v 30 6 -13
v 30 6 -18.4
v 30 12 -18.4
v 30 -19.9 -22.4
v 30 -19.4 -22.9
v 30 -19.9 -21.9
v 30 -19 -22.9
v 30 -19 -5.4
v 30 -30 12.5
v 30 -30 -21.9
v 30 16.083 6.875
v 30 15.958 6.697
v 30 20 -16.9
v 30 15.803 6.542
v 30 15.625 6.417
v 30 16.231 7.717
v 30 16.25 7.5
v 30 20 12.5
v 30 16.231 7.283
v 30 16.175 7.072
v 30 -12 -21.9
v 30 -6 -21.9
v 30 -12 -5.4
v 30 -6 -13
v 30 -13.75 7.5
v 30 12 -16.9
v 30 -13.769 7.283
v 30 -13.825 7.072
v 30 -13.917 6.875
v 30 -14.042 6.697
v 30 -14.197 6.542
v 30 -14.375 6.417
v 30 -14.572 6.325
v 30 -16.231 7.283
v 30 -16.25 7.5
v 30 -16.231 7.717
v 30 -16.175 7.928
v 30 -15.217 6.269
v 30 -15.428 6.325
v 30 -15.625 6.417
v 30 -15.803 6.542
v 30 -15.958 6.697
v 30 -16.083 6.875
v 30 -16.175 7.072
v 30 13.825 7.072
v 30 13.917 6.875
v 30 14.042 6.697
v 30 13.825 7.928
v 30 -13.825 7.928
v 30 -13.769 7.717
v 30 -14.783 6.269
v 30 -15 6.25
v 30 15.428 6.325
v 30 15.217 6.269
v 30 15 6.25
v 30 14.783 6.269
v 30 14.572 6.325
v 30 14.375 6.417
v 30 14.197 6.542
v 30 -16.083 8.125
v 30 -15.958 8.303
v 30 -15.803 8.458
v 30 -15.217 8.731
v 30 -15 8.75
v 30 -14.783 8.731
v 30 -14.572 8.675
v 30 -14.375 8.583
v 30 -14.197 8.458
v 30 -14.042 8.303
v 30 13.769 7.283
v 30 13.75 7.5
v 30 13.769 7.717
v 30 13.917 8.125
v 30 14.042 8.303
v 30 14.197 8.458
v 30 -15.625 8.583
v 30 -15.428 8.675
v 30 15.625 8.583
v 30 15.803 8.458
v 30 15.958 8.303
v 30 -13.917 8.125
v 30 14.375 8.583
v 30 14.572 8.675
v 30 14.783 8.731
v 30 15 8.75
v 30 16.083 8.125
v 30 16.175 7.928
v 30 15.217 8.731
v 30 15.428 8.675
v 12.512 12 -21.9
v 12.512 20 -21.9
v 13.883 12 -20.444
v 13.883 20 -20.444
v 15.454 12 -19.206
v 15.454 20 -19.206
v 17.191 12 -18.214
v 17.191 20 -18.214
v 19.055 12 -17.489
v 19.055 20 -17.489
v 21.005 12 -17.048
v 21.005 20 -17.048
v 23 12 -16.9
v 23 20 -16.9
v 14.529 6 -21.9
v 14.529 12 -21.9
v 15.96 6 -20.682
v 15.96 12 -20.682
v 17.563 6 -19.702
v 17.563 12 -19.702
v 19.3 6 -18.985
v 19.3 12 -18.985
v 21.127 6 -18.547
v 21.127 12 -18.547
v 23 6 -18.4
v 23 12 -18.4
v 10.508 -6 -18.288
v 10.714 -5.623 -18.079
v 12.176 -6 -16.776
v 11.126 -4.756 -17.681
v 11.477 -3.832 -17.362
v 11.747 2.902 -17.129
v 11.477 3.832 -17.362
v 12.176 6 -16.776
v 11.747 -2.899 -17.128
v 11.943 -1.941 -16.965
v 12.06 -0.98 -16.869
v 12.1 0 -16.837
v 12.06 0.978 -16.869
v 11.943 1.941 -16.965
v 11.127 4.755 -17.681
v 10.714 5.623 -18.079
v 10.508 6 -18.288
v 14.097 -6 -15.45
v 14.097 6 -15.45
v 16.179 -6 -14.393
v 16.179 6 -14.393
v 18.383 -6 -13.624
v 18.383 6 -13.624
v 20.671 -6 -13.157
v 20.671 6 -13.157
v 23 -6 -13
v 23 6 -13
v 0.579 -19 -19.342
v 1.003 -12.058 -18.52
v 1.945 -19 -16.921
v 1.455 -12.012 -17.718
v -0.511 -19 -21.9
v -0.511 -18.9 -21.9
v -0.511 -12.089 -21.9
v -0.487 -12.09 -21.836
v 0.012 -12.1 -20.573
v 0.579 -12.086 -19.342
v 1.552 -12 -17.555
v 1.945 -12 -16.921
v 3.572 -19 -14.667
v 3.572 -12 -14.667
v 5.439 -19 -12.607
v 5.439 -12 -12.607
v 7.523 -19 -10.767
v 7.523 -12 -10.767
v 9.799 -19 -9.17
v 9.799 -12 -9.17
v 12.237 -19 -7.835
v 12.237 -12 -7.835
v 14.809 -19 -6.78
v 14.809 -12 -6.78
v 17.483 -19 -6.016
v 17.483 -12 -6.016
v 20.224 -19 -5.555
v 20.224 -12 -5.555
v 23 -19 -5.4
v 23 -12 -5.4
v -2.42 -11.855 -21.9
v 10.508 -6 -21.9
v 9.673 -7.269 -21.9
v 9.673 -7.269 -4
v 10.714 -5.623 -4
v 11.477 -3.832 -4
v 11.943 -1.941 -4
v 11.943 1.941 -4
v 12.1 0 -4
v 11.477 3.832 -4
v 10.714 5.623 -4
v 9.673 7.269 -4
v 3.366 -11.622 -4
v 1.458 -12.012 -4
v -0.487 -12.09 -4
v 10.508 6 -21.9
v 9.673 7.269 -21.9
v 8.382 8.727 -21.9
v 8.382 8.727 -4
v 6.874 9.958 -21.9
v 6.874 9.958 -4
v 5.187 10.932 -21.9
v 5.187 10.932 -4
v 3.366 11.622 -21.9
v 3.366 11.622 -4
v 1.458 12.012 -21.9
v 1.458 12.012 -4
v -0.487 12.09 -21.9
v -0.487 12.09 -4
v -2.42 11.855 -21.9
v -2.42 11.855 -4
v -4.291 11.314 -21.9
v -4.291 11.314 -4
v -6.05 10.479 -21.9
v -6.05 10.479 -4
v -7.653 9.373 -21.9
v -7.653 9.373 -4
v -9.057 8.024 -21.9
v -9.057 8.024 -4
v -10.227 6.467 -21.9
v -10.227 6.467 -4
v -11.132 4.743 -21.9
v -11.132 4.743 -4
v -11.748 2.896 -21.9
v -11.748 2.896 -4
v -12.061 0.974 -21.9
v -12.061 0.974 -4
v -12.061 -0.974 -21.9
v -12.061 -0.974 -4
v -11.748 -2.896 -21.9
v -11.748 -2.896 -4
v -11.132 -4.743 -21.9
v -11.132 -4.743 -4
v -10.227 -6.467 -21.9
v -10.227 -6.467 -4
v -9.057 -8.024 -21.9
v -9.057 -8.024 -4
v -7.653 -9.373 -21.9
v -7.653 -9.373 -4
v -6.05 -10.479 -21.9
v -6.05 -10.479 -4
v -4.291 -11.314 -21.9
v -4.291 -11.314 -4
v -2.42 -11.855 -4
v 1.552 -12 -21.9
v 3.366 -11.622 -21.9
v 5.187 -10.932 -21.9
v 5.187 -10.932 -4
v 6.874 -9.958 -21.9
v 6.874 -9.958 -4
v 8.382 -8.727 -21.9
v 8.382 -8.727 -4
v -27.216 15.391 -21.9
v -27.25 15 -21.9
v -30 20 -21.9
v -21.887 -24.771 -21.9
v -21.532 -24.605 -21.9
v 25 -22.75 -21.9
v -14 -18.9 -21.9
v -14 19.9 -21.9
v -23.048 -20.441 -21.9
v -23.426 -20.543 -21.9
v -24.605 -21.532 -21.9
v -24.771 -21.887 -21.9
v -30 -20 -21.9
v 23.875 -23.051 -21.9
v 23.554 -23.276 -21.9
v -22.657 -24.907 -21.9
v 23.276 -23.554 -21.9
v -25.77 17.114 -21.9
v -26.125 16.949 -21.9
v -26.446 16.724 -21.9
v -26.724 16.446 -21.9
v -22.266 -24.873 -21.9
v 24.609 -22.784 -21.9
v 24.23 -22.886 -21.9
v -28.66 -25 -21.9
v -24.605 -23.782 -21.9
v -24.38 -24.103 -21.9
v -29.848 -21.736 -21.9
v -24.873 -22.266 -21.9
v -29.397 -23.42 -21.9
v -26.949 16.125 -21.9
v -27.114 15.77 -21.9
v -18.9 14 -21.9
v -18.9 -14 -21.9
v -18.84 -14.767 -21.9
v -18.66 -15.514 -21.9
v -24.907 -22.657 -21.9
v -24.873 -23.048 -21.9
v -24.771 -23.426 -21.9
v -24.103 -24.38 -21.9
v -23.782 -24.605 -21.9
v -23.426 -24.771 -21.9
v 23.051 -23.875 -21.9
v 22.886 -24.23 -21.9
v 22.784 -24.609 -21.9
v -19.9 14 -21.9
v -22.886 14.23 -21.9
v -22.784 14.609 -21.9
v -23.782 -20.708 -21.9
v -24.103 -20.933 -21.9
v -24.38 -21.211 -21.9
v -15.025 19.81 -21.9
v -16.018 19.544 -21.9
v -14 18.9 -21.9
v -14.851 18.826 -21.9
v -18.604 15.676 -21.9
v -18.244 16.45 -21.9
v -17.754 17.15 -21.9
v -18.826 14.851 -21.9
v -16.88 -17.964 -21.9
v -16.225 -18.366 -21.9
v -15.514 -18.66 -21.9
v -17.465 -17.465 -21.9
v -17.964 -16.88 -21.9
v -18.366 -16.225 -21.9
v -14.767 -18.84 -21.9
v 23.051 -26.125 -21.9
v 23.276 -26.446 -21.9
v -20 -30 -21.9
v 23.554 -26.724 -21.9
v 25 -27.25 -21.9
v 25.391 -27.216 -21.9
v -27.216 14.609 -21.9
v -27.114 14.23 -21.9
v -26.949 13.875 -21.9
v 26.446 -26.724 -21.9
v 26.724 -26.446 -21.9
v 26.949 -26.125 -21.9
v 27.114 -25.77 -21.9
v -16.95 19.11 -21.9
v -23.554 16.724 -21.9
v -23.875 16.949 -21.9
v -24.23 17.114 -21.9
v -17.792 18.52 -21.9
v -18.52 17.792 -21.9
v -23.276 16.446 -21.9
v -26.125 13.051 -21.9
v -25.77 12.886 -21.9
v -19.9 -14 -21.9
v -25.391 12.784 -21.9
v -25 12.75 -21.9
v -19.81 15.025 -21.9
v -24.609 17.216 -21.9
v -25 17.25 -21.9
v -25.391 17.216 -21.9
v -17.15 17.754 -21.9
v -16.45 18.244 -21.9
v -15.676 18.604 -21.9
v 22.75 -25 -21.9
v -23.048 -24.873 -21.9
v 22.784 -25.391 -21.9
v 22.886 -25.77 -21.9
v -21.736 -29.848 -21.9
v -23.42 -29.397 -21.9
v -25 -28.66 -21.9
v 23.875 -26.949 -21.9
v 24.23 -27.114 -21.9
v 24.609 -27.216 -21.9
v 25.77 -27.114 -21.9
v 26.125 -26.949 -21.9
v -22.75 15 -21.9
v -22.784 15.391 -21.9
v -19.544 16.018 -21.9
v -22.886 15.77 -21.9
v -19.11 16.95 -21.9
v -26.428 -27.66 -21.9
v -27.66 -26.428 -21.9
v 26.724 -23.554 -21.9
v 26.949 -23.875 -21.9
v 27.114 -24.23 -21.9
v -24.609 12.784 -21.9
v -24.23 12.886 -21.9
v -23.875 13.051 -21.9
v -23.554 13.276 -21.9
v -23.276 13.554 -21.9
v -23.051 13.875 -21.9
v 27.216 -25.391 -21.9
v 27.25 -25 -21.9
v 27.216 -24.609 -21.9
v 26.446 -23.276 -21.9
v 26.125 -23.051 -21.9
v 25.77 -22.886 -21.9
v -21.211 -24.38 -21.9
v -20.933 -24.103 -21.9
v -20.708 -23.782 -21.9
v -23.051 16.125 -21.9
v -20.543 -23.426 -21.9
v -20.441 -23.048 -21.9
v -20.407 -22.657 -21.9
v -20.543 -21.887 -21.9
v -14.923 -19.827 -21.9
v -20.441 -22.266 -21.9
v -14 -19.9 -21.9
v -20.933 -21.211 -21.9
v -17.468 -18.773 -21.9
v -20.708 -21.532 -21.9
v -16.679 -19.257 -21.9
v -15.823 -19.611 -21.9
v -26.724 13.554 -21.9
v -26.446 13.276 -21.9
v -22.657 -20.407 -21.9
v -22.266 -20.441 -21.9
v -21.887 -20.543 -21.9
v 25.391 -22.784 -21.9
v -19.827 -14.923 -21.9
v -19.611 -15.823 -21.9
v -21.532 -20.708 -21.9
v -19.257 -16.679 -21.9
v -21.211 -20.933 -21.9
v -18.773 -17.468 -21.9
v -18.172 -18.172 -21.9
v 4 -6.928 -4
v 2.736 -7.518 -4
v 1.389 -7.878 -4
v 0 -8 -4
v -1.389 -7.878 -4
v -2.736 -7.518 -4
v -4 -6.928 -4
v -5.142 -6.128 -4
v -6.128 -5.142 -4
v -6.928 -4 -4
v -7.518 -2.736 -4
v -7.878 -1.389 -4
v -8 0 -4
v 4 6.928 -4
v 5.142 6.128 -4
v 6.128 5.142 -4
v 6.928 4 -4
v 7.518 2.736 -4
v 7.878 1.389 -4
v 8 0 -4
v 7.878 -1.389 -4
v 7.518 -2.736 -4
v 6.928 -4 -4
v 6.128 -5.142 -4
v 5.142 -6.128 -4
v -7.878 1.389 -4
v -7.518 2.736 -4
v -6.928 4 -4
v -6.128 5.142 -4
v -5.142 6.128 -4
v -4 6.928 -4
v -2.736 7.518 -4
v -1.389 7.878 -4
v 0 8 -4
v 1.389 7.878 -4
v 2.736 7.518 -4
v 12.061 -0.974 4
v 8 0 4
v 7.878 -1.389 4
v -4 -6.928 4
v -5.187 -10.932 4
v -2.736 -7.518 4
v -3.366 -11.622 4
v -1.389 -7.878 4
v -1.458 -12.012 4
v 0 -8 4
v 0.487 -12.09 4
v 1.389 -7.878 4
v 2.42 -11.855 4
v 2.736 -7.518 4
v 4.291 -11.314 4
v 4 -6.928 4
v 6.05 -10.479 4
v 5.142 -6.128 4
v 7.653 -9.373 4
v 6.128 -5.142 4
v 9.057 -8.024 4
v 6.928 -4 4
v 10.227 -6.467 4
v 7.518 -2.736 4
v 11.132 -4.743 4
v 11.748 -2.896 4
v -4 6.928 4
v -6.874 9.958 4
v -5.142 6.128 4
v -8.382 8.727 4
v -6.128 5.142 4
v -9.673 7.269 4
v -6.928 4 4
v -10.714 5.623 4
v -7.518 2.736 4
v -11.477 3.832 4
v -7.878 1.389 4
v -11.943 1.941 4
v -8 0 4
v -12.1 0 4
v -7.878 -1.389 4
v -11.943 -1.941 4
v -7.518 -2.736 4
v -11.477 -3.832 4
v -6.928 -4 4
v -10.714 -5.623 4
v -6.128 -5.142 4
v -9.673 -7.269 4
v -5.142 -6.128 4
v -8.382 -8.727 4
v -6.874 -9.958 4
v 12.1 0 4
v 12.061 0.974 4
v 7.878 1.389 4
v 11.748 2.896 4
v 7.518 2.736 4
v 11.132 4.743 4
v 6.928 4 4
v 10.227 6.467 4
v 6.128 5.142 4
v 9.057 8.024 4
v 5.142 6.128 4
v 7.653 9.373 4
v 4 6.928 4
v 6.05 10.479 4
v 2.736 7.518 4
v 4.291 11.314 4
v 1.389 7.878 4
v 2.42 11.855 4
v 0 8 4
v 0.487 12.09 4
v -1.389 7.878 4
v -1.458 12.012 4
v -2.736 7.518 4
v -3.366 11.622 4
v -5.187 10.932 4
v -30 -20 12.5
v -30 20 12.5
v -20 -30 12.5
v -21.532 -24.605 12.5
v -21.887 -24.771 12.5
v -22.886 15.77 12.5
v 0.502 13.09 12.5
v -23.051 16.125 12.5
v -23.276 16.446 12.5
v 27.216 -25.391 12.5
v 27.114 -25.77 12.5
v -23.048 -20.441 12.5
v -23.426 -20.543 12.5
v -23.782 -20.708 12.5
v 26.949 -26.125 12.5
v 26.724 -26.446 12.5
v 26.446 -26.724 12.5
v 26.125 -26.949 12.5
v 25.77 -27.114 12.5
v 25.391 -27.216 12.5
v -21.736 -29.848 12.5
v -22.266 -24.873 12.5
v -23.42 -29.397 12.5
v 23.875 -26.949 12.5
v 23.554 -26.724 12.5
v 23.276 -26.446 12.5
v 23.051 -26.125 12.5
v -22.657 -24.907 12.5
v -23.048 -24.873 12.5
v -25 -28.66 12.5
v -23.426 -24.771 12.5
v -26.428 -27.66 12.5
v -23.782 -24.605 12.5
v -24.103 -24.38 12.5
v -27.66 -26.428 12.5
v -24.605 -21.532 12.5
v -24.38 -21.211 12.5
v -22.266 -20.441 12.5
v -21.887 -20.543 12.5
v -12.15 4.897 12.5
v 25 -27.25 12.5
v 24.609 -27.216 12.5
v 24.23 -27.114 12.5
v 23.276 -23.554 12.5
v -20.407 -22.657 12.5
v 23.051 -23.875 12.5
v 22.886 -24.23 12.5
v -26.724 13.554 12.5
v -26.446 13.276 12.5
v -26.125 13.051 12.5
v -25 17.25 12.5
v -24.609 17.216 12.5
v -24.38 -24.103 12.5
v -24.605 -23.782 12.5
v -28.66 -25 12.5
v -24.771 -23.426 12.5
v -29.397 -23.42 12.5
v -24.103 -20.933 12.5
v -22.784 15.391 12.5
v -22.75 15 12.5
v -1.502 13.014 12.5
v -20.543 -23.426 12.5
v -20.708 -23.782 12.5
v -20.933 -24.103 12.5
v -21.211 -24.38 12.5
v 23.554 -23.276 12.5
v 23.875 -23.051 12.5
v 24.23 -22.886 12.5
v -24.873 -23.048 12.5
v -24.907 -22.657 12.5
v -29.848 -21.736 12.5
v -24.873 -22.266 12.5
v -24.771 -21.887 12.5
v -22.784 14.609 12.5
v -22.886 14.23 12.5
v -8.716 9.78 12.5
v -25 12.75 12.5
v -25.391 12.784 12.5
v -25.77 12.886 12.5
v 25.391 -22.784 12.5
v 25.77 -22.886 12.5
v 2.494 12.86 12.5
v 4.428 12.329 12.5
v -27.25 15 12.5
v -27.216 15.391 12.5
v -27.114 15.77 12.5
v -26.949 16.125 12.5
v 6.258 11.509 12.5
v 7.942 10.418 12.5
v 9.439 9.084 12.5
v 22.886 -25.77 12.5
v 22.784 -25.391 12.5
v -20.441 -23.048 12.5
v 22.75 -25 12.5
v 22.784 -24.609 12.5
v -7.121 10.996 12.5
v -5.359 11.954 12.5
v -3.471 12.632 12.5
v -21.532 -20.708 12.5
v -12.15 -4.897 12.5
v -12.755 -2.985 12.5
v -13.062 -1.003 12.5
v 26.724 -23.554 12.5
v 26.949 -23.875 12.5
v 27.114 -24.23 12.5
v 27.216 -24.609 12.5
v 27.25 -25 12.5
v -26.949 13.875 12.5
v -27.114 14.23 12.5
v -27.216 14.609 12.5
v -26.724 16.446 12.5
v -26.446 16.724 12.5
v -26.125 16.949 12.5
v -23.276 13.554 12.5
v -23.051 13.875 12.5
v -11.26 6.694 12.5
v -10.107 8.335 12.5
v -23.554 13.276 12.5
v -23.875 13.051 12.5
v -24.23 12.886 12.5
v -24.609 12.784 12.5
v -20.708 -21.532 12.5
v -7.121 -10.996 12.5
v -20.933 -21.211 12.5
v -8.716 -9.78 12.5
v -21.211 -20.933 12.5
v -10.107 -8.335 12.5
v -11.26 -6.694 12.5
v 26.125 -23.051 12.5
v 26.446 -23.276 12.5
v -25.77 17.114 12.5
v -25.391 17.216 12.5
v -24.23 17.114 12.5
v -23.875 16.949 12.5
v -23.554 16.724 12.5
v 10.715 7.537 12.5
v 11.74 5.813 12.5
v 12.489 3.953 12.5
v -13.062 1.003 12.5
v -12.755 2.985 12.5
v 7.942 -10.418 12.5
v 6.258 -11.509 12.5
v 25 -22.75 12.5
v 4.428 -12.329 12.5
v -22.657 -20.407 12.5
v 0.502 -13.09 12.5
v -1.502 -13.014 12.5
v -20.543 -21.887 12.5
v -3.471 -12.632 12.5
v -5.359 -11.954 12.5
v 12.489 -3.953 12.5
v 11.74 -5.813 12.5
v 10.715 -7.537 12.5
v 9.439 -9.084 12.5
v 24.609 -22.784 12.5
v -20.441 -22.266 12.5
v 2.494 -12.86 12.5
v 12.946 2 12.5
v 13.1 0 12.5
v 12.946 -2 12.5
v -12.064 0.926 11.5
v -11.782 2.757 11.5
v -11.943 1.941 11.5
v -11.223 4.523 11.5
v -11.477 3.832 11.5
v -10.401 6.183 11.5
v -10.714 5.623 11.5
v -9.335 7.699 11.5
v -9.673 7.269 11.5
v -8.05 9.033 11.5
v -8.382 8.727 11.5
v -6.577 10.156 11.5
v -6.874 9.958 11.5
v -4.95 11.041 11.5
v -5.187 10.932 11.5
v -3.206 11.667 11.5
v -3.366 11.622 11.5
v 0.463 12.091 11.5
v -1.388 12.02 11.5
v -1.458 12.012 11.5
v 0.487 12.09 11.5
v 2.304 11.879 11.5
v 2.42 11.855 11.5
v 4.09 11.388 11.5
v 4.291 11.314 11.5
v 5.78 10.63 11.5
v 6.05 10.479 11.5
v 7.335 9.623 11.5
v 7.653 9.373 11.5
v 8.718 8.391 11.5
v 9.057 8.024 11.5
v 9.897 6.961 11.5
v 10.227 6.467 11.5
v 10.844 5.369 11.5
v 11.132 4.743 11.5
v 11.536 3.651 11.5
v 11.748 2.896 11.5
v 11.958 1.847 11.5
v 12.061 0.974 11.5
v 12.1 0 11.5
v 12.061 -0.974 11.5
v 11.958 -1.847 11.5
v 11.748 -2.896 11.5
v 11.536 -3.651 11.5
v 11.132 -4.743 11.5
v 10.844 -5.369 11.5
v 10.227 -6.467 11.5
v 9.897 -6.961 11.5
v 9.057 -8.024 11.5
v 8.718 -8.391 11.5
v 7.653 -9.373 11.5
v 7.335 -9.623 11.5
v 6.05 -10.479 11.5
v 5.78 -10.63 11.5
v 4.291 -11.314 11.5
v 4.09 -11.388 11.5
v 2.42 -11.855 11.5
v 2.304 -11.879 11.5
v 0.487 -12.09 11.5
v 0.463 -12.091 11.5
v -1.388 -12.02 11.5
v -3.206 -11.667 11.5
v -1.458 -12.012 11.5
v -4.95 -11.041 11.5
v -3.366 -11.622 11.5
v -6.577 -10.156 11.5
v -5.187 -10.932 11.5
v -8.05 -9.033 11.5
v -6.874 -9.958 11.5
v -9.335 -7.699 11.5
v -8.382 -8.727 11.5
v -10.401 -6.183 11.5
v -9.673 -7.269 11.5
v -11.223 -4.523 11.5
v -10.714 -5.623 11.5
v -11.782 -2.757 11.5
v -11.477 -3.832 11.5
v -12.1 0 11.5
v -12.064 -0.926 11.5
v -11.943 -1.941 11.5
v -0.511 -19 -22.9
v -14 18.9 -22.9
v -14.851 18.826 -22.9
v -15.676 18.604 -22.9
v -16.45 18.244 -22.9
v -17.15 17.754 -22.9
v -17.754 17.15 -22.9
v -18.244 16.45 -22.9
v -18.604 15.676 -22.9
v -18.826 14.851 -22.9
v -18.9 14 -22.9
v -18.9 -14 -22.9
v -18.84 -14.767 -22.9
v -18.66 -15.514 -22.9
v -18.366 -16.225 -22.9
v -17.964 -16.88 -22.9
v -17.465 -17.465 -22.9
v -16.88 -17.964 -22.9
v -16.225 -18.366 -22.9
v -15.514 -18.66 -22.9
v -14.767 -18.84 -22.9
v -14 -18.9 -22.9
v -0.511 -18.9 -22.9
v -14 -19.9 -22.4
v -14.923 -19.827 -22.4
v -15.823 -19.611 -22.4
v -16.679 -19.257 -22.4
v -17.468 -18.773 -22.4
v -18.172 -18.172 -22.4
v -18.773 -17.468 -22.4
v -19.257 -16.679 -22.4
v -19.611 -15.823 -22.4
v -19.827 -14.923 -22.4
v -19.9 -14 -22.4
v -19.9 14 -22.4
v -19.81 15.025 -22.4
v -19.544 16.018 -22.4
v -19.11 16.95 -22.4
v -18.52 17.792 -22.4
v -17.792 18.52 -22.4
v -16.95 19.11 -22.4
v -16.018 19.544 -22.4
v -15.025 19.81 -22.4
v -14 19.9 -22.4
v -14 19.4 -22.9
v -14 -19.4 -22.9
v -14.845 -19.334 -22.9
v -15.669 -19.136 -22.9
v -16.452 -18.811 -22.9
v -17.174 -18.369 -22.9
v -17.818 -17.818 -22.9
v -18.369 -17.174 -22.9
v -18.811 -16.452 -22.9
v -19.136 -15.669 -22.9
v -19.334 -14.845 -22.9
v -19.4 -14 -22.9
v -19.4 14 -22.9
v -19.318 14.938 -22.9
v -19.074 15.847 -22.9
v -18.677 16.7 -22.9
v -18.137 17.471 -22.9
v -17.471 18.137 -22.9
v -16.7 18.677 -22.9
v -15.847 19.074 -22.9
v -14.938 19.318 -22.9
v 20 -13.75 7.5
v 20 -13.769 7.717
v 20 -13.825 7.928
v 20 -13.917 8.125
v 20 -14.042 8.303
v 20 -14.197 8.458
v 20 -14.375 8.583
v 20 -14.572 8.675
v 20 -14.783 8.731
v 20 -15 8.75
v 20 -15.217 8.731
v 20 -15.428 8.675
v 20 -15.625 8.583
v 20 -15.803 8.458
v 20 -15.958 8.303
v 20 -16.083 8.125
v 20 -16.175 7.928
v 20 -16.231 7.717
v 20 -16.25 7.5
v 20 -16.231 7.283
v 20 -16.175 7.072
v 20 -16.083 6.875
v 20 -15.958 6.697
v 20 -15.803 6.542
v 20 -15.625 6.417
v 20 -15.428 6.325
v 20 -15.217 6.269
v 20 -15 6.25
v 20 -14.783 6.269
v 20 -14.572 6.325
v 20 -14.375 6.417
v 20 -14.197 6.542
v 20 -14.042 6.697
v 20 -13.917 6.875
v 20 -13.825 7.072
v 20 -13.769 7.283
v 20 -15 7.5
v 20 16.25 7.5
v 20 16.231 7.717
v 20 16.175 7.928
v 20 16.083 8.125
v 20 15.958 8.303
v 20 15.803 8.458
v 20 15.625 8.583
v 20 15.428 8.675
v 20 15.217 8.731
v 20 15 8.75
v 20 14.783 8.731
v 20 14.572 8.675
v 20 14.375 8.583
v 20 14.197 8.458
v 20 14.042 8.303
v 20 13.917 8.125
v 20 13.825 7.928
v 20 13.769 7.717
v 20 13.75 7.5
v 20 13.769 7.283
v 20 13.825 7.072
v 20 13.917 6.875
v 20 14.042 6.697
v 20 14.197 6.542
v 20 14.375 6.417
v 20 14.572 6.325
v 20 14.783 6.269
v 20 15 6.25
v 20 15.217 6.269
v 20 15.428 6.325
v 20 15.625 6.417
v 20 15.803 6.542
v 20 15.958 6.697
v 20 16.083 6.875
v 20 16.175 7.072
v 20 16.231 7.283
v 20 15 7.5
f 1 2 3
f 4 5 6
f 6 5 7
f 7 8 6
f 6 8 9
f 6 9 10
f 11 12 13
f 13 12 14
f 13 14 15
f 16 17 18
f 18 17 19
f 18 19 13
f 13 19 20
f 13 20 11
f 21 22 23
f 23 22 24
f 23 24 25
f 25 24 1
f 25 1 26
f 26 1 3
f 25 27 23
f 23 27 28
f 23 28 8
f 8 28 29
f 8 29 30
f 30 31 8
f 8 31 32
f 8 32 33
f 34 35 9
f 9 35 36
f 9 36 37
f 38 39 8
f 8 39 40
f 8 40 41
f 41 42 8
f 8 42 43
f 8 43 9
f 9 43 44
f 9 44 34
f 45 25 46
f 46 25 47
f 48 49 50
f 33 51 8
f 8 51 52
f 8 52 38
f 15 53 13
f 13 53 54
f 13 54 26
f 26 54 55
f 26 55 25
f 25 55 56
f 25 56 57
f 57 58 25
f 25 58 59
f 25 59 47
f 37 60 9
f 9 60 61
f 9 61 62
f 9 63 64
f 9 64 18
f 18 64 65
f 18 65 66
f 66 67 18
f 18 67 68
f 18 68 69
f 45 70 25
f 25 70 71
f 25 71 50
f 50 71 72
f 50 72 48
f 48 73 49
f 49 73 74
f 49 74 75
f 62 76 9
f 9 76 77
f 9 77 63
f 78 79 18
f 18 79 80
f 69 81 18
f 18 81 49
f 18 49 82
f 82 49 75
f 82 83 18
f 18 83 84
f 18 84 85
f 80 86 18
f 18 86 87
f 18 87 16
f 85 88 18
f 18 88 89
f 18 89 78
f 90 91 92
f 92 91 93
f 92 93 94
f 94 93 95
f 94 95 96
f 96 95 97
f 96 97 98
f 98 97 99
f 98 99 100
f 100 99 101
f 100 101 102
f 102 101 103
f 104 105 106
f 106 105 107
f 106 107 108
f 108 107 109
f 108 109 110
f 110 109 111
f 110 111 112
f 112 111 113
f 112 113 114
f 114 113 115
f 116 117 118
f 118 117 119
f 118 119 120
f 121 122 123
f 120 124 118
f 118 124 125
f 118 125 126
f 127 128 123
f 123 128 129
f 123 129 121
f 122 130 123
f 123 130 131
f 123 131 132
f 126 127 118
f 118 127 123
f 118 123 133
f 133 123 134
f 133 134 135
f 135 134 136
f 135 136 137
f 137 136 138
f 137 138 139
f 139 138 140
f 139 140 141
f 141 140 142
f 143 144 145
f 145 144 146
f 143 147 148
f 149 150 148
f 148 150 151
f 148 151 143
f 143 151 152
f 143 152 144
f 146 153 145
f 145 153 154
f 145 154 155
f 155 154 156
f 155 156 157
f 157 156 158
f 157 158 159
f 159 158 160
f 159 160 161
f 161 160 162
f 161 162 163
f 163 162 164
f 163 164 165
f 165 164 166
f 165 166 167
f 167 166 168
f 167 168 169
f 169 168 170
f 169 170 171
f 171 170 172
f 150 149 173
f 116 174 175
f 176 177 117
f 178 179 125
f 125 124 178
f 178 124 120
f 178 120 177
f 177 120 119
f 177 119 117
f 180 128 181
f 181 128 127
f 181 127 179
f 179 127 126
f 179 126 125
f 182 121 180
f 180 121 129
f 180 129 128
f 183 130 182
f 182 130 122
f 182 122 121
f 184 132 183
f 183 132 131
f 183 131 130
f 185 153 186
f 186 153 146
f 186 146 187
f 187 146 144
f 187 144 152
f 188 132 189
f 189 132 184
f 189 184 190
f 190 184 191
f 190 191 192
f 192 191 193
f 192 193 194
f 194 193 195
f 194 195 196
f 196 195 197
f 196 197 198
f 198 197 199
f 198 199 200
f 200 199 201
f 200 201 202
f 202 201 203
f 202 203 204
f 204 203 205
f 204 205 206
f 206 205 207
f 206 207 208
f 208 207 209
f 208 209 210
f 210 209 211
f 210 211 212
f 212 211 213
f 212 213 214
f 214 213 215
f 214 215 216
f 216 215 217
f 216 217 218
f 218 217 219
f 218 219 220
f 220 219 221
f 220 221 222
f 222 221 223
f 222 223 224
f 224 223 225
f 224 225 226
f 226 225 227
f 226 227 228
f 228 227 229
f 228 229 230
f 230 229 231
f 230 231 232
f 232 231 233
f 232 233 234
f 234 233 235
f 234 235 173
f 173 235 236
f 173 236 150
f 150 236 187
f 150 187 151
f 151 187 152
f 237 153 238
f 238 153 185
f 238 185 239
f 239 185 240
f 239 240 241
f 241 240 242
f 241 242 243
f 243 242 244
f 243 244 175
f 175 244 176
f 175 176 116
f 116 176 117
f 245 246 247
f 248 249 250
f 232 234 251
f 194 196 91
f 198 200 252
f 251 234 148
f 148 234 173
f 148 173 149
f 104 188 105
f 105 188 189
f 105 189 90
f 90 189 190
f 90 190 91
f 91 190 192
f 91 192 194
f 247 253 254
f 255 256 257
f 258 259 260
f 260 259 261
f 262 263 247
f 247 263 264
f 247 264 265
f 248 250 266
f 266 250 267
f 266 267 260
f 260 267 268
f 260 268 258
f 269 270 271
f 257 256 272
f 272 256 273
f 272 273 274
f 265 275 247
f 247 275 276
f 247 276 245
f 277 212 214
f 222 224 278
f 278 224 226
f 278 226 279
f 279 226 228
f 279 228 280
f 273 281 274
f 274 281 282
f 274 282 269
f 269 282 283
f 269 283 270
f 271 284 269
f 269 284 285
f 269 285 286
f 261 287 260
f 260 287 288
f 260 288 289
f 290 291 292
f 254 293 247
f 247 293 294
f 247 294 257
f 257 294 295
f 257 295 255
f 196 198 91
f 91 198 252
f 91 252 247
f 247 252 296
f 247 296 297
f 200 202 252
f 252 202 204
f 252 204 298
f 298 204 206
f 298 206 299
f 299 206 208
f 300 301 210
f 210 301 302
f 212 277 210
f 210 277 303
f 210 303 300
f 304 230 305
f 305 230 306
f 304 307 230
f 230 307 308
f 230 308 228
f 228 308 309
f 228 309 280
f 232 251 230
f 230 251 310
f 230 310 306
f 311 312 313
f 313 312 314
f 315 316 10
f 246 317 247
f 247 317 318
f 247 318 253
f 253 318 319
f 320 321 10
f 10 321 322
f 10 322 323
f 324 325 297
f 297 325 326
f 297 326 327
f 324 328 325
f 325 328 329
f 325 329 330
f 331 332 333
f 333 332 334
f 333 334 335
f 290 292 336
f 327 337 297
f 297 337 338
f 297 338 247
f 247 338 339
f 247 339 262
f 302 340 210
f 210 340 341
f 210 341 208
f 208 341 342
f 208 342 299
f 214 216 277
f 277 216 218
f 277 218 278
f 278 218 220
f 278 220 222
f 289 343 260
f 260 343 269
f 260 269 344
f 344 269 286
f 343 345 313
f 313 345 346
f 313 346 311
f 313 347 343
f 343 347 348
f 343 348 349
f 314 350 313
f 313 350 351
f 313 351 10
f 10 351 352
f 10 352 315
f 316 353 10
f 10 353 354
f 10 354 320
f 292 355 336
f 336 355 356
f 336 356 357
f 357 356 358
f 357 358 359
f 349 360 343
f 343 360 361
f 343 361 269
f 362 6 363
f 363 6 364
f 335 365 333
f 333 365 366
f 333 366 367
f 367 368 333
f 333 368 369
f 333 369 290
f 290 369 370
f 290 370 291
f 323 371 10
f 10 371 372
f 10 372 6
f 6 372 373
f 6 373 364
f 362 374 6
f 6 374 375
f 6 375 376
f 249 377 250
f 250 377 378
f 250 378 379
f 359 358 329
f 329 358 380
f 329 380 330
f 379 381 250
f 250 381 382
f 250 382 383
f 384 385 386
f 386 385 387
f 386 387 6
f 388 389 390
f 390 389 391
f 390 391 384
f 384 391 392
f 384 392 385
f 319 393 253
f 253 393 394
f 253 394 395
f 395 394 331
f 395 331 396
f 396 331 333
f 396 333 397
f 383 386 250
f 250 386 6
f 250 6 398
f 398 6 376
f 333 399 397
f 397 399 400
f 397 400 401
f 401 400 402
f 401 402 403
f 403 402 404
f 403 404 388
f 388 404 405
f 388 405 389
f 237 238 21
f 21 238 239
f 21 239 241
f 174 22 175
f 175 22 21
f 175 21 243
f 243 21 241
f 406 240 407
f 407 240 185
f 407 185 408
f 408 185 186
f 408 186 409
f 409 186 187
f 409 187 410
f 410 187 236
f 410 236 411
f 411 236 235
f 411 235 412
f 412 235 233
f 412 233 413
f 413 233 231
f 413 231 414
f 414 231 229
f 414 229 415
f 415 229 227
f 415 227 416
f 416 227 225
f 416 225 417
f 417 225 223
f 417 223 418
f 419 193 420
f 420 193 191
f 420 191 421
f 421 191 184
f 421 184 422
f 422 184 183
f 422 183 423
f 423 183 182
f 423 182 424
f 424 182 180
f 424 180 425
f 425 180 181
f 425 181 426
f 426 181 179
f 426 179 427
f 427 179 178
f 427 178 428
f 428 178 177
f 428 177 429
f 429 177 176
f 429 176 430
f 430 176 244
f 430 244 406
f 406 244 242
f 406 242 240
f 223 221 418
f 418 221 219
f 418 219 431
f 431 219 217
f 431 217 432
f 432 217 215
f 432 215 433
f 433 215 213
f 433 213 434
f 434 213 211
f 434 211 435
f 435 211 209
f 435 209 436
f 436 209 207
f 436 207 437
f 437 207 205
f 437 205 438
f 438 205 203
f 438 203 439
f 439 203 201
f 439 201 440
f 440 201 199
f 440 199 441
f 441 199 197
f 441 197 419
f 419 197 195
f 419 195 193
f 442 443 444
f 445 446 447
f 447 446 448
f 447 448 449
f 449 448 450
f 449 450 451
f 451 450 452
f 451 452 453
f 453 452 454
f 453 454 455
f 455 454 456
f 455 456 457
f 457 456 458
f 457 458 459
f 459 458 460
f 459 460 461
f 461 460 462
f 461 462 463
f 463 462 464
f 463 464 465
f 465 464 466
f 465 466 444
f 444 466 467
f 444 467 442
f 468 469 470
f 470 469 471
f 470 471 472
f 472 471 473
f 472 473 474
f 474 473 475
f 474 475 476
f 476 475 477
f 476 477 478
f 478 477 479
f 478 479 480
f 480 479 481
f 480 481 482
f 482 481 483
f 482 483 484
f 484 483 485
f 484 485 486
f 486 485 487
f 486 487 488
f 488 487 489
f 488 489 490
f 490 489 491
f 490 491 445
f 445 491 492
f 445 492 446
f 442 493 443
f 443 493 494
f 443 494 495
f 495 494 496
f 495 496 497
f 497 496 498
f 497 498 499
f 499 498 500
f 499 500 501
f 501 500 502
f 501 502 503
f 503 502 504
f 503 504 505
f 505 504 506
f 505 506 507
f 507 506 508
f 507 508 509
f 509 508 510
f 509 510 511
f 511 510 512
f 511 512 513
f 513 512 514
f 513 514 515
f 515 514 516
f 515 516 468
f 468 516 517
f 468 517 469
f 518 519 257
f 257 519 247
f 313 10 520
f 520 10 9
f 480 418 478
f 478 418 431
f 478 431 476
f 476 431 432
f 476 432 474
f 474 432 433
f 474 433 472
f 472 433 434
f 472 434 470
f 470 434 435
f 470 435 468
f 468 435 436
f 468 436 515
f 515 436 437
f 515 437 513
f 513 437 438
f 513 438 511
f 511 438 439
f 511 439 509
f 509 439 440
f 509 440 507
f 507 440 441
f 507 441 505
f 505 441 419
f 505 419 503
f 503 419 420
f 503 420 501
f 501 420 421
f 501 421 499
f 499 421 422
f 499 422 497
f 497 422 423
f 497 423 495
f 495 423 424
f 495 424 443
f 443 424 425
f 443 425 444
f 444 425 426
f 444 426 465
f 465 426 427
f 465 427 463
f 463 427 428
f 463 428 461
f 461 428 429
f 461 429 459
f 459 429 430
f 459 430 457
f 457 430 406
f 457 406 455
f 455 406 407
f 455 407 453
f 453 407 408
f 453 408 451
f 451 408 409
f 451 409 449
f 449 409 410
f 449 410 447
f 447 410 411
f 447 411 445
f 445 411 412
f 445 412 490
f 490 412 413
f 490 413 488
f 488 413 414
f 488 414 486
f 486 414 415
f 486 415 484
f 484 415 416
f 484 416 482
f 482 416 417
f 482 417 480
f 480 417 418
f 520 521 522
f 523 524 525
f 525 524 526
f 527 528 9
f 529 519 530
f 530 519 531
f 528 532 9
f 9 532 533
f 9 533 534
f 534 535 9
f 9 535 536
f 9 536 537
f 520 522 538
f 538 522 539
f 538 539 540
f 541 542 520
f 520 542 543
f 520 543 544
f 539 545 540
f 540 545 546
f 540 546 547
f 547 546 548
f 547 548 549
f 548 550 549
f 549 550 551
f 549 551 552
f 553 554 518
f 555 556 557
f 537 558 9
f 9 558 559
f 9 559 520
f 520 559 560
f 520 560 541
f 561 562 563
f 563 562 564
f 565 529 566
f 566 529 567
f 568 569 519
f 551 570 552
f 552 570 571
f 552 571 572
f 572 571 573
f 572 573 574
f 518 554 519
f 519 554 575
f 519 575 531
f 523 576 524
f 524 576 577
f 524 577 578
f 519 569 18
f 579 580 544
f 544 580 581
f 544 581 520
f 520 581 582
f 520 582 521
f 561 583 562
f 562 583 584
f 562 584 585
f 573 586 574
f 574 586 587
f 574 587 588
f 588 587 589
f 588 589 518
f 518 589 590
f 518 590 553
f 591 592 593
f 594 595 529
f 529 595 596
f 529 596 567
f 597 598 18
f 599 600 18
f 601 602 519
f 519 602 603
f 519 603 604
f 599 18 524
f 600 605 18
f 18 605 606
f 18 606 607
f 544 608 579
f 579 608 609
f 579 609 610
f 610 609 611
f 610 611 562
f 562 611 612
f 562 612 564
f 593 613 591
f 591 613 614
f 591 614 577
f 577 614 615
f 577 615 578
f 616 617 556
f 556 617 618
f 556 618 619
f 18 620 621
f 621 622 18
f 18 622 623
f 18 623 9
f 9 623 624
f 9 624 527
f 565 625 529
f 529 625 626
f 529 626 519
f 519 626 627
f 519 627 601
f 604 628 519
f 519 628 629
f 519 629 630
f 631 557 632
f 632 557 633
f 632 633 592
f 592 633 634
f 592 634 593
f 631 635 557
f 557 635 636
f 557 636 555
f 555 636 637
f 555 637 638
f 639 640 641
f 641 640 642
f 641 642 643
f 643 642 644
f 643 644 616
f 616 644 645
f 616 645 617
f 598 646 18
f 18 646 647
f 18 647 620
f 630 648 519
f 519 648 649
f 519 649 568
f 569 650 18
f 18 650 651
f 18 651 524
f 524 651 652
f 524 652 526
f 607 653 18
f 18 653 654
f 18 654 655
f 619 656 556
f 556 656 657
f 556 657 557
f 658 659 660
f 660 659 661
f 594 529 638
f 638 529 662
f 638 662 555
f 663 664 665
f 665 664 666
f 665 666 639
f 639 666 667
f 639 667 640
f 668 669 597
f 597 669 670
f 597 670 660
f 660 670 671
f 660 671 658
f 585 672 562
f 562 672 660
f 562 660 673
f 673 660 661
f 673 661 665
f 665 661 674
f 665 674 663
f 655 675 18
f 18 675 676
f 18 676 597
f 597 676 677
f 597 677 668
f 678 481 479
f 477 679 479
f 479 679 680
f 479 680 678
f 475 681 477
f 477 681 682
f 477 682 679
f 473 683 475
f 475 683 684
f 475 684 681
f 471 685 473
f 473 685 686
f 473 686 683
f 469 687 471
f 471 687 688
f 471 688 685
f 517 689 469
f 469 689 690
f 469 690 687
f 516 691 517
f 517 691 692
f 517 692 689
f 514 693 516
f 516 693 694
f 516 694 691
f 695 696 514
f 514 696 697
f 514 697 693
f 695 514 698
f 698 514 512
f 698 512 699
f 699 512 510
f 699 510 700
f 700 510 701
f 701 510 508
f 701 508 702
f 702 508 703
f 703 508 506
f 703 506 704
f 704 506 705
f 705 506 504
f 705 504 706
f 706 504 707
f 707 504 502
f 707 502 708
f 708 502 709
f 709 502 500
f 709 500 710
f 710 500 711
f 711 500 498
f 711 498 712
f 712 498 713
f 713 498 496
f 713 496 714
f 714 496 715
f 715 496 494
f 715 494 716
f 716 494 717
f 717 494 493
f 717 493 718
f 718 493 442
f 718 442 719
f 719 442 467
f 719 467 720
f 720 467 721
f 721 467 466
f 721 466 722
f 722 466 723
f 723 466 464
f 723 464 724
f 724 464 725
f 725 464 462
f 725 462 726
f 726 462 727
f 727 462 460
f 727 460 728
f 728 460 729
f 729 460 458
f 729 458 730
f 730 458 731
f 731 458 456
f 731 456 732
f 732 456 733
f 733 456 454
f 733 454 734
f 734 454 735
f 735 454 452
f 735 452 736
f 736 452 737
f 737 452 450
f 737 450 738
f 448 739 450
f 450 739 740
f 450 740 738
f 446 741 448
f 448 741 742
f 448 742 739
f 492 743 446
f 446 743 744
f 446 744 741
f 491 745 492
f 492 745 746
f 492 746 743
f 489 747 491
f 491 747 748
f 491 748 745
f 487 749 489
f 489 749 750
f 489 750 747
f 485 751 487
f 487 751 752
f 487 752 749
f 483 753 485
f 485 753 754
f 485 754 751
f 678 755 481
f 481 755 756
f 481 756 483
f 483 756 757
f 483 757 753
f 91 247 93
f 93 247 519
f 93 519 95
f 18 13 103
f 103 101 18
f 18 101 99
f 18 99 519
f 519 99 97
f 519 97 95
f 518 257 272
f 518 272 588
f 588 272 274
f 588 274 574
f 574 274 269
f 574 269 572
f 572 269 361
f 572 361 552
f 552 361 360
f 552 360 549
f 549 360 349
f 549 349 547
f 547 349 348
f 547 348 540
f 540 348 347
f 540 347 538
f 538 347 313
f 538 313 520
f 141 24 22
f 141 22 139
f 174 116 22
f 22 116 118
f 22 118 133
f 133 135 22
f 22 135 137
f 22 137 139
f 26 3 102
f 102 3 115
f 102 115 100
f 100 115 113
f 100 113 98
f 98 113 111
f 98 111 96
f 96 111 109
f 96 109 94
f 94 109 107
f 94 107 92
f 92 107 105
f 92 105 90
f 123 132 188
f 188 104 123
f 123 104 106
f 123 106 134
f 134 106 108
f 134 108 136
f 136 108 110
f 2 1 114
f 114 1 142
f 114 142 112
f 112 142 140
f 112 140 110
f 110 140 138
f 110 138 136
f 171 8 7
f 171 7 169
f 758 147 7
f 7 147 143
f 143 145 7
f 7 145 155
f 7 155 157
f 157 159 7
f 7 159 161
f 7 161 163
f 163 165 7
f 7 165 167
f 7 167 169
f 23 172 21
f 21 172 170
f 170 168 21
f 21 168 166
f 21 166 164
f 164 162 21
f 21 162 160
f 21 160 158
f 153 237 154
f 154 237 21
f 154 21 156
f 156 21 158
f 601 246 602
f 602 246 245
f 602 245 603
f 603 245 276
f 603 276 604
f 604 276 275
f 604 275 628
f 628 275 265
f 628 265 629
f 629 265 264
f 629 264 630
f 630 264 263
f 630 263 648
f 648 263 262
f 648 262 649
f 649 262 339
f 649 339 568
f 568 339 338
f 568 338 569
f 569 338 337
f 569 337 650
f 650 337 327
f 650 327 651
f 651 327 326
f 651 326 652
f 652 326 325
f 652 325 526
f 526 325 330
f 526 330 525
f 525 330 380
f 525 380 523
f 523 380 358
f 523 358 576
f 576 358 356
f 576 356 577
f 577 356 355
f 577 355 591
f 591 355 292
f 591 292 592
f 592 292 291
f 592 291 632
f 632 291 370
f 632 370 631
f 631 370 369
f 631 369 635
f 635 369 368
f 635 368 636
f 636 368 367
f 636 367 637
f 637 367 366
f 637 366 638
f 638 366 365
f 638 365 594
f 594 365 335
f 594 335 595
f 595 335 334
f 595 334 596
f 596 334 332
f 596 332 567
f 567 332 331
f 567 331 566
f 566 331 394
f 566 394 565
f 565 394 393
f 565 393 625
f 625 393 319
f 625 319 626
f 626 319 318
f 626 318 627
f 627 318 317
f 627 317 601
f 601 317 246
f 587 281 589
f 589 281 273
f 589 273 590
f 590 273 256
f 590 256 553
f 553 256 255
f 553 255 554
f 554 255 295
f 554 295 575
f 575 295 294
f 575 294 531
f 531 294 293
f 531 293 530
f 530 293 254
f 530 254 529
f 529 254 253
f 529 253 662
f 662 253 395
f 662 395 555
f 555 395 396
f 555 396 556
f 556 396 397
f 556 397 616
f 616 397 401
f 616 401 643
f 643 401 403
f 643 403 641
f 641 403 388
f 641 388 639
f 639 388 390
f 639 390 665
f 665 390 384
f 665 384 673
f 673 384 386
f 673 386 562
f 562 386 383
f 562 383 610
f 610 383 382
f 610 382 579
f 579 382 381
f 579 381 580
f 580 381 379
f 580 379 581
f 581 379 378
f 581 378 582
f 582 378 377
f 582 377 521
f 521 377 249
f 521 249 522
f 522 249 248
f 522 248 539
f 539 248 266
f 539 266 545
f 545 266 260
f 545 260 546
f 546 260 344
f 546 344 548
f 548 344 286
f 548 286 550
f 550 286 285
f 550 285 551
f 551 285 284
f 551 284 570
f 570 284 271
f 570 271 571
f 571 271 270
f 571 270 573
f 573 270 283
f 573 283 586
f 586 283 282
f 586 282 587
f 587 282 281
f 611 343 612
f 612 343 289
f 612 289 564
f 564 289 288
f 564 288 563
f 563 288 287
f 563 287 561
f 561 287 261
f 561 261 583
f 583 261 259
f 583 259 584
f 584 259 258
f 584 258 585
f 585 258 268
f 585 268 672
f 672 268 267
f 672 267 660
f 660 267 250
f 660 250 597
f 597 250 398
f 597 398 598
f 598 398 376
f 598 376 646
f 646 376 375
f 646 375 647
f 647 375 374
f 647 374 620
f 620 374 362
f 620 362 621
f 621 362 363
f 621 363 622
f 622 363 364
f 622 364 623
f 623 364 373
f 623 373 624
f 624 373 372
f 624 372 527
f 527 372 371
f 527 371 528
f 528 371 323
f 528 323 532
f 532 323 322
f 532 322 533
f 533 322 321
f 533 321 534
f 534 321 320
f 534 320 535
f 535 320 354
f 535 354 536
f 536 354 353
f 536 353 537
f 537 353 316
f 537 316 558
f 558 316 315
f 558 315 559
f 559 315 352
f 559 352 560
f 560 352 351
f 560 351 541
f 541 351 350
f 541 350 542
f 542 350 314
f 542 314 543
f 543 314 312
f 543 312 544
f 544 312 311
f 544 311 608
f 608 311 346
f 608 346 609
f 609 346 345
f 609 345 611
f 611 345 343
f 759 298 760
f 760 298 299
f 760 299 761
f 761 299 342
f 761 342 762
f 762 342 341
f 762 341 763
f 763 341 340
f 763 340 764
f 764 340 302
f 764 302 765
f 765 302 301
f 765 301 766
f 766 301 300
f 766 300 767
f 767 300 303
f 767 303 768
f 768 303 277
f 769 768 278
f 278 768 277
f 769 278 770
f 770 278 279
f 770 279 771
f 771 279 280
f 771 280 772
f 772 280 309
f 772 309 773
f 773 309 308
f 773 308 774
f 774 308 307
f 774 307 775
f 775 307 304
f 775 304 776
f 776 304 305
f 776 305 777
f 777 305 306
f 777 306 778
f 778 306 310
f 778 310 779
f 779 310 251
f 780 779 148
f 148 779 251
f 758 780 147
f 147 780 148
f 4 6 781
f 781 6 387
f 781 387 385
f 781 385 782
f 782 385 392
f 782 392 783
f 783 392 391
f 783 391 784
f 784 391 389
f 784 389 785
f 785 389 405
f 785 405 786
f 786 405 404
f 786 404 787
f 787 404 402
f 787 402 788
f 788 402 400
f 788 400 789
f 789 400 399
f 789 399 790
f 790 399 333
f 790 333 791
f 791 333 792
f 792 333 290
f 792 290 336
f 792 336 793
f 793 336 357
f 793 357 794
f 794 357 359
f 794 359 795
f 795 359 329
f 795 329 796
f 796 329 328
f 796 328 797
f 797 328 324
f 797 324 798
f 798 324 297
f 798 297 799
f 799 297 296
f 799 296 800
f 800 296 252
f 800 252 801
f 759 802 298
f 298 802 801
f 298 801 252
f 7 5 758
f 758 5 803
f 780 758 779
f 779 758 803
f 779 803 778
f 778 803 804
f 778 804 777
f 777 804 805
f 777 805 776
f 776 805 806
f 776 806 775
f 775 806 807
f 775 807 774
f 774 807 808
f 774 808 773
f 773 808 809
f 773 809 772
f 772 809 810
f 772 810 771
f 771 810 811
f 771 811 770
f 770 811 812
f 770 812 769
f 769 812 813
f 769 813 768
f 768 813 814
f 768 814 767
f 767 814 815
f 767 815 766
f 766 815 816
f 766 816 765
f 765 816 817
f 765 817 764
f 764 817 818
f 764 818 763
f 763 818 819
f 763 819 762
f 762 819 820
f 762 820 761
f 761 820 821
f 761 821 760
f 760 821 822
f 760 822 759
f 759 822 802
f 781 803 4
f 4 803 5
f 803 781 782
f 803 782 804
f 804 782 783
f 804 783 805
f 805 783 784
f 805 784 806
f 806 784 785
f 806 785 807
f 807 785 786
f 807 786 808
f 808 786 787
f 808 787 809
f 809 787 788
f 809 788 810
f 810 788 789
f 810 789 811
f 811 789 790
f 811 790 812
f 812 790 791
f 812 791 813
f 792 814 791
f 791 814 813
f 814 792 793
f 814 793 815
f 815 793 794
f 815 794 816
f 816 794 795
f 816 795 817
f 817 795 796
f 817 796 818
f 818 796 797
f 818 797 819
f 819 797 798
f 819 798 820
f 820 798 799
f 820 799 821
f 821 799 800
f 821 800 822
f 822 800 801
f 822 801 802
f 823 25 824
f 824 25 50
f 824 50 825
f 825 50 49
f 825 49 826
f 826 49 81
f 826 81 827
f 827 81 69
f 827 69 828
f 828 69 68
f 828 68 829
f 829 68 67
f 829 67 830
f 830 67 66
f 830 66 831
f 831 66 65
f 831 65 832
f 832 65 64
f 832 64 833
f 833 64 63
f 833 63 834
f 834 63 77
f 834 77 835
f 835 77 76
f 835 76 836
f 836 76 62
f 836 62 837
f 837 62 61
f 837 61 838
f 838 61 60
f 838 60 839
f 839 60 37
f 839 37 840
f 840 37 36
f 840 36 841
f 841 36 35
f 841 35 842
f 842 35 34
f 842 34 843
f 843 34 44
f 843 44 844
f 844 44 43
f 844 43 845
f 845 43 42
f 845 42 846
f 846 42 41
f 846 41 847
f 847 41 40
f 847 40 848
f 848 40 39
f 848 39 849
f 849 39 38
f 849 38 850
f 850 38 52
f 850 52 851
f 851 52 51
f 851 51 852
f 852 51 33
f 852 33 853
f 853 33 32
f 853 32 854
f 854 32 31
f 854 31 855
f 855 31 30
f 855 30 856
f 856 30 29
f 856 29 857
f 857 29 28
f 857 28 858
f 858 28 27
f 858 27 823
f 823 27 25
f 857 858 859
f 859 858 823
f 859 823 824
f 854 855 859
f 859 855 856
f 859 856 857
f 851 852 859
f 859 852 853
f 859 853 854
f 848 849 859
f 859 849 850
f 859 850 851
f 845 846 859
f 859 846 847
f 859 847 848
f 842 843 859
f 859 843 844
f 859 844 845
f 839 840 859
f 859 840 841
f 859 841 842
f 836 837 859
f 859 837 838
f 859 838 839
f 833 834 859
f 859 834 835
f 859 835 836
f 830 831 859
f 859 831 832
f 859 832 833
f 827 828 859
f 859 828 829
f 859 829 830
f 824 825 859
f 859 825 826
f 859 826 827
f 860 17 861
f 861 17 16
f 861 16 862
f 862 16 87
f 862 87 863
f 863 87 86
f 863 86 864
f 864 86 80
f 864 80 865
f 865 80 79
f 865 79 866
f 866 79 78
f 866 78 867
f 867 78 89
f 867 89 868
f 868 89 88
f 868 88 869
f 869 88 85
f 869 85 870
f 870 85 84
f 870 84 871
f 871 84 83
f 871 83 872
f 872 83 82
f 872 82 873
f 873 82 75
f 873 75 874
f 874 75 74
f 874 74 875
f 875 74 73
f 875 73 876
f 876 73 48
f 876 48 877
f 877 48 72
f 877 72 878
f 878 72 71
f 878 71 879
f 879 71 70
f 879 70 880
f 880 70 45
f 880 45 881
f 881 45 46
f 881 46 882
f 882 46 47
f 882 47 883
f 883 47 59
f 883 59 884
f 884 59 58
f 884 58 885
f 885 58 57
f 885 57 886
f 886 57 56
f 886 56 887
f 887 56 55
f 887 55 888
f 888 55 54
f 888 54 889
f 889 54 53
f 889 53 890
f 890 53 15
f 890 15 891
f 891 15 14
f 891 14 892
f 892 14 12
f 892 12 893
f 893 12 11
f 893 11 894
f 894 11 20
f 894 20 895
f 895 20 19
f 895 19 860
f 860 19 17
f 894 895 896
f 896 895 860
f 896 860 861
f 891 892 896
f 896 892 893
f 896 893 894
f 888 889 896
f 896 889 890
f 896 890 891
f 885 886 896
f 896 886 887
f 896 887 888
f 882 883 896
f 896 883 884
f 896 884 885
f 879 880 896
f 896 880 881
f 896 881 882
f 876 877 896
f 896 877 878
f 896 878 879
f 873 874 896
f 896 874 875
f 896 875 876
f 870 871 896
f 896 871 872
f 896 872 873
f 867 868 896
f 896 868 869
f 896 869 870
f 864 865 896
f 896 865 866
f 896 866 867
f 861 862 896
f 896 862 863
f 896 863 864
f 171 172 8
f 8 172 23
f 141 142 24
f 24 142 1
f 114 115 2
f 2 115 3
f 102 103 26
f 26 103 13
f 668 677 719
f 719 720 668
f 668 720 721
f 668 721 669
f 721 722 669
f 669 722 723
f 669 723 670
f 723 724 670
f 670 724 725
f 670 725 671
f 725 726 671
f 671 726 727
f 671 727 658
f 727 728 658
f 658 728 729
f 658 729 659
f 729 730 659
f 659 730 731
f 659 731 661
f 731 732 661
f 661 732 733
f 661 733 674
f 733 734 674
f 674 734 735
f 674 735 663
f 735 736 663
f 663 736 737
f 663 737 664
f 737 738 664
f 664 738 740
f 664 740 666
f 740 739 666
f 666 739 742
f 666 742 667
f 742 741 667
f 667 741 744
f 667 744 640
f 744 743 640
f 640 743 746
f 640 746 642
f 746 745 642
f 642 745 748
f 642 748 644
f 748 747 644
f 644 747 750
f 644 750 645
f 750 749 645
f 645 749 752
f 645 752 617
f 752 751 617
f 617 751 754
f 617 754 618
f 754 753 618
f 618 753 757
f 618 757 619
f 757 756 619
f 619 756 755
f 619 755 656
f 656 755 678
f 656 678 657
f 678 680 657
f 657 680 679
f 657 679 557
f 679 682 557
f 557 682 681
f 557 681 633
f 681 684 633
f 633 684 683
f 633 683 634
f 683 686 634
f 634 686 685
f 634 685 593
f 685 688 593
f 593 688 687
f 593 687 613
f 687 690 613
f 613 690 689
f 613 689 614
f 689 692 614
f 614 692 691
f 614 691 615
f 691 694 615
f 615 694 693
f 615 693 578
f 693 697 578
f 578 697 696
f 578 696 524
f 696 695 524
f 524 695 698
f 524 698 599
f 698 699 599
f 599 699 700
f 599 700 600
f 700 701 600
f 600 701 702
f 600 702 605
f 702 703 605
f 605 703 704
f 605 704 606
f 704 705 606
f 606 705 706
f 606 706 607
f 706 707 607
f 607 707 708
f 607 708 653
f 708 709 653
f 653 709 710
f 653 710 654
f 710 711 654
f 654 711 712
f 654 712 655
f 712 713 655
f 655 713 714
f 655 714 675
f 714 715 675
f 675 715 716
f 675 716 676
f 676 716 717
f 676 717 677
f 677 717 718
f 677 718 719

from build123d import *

# Parameters (mm, degrees)
SCHIZZO1_W                   = 60
SCHIZZO1_H                   = 60
SCHIZZO1_R                   = 8
ESTRUSIONE_ESTRUSIONE1_DEPTH = 4
SCHIZZO2_W                   = 60
SCHIZZO2_H                   = 60
SCHIZZO2_R                   = 12.1
ESTRUSIONE_ESTRUSIONE2_DEPTH = 8.5
SCHIZZO6_W                   = 60
SCHIZZO6_H                   = 60
SCHIZZO6_R                   = 12.1
ESTRUSIONE_ESTRUSIONE3_DEPTH = 9.4
SCHIZZO3_W                   = 60
SCHIZZO3_H                   = 10
TAGLIO_ESTRUSIONE1_DEPTH     = 55.620142805
RACCORDO2_R                  = 10
SCHIZZO10_R                  = 2.25
TAGLIO_ESTRUSIONE3_DEPTH     = 55.62014286
ESTRUSIONE_ESTRUSIONE5_DEPTH = 1
SMUSSO2_SIZE                 = 0.5
SCHIZZO12_R                  = 1.25
TAGLIO_ESTRUSIONE4_DEPTH     = 10
SCHIZZO14_W                  = 1.470153799
SCHIZZO14_H                  = 12
SCHIZZO14_W_2                = 1
SCHIZZO14_H_2                = 7
TAGLIO_ESTRUSIONE5_DEPTH     = 7
SMUSSO3_SIZE                 = 1


# Read off the part's stored shape, not the designer's step: Estrusione-Estrusione5
with BuildPart() as part:
    # Schizzo1 → Estrusione-Estrusione1 (new, symmetric)
    with BuildSketch(Plane.XY):
        Rectangle(SCHIZZO1_W, SCHIZZO1_H)
        Circle(SCHIZZO1_R, mode=Mode.SUBTRACT)
    extrude(amount=ESTRUSIONE_ESTRUSIONE1_DEPTH, both=True)

    # Schizzo2 → Estrusione-Estrusione2 (add)
    with BuildSketch(Plane.XY.offset(4)):
        Rectangle(SCHIZZO2_W, SCHIZZO2_H)
        Circle(SCHIZZO2_R, mode=Mode.SUBTRACT)
    estrusione_estrusione2 = extrude(amount=ESTRUSIONE_ESTRUSIONE2_DEPTH)

    # Specchia1: Estrusione-Estrusione2 across plane
    add(estrusione_estrusione2.mirror(Plane.XY))

    # Schizzo6 → Estrusione-Estrusione3 (add)
    with BuildSketch(Plane(origin=(0, 0, -12.5), x_dir=(-1, 0, 0), z_dir=(0, 0, -1))):
        Rectangle(SCHIZZO6_W, SCHIZZO6_H)
        with Locations(Location((0, 0, 0), (0, 0, 180))):
            Circle(SCHIZZO6_R, mode=Mode.SUBTRACT)
    extrude(amount=ESTRUSIONE_ESTRUSIONE3_DEPTH)

    # Schizzo3 → Taglio-Estrusione1 (cut, through all)
    with BuildSketch(Plane.XY.offset(12.5)):
        with Locations((0, 25)):
            Rectangle(SCHIZZO3_W, SCHIZZO3_H)
    extrude(amount=-TAGLIO_ESTRUSIONE1_DEPTH, mode=Mode.SUBTRACT)

    # Raccordo2
    raccordo2_edges = [part.edges().sort_by_distance(p)[0] for p in [
        (-30, -30, -4.7),
    ]]
    fillet(raccordo2_edges, radius=RACCORDO2_R)

    # Schizzo13 → Taglia-Rivoluzione4 (revolve, cut)
    with BuildSketch(Plane(origin=(0, 0, -30.4), x_dir=(-1, 0, 0), z_dir=(0, 0, -1))):
        Polygon((-9.5, 25.081325019), (-22, 25.081325019), (-22, -19), (2, -19), (2, -12), (-16, -12), (-16, -6), (-5.6, -6), (-5.6, 6), (-11, 6), (-11, 12), (-9.5, 12), align=None)
    revolve(axis=Axis((23, 27.323096352, -30.4), (0, -1, 0)), mode=Mode.SUBTRACT)

    # Schizzo10 → Taglio-Estrusione3 (cut, through all)
    with BuildSketch(Plane(origin=(0, 0, -21.9), x_dir=(-1, 0, 0), z_dir=(0, 0, -1))):
        with Locations((-25, -25)):
            Circle(SCHIZZO10_R)
        with Locations((22.656854249, -22.656854249)):
            Circle(SCHIZZO10_R)
        with Locations((25, 15)):
            Circle(SCHIZZO10_R)
    extrude(amount=-TAGLIO_ESTRUSIONE3_DEPTH, mode=Mode.SUBTRACT)

    # Estrusione-Estrusione5 outline → Estrusione-Estrusione5 (add)
    with BuildSketch(Plane(origin=(0, 0, -21.9), x_dir=(-1, 0, 0), z_dir=(0, 0, -1))):
        with BuildLine():
            Line((14, 19.9), (14, 18.9))
            ThreePointArc((14, 18.9), (17.464823228, 17.464823228), (18.9, 14))
            Line((18.9, 14), (18.9, -14))
            ThreePointArc((18.9, -14), (17.464823228, -17.464823228), (14, -18.9))
            Line((14, -18.9), (0.510635891, -18.9))
            Line((0.510635891, -18.9), (0.510635891, -19))
            Line((0.510635891, -19), (-30, -19))
            Line((-30, -19), (-30, -19.9))
            Line((-30, -19.9), (14, -19.9))
            ThreePointArc((14, -19.9), (18.171930009, -18.171930009), (19.9, -14))
            Line((19.9, -14), (19.9, 14))
            ThreePointArc((19.9, 14), (18.171930009, 18.171930009), (14, 19.9))
        make_face()
    extrude(amount=ESTRUSIONE_ESTRUSIONE5_DEPTH)

    # Smusso2
    smusso2_edges = [part.edges().sort_by_distance(p)[0] for p in [
        (8, -19.9, -22.9),
        (-18.171930009, -18.171930009, -22.9),
        (-19.9, 0, -22.9),
        (-18.171930009, 18.171930009, -22.9),
    ]]
    chamfer(smusso2_edges, length=SMUSSO2_SIZE)

    # Schizzo12 → Taglio-Estrusione4 (cut)
    with BuildSketch(Plane(origin=(30, 0, 0), x_dir=(0, 0, -1), z_dir=(1, 0, 0))):
        with Locations(Location((-7.5, -15, 0), (0, 0, 90))):
            Circle(SCHIZZO12_R)
        with Locations(Location((-7.5, 15, 0), (0, 0, 90))):
            Circle(SCHIZZO12_R)
    extrude(amount=-TAGLIO_ESTRUSIONE4_DEPTH, mode=Mode.SUBTRACT)

    # Schizzo14 → Taglio-Estrusione5 (cut)
    with BuildSketch(Plane(origin=(30, 0, 0), x_dir=(0, 0, -1), z_dir=(1, 0, 0))):
        with Locations((13.7350769, 0)):
            Rectangle(SCHIZZO14_W, SCHIZZO14_H)
        Polygon((20.653205655, 6), (20.653205655, 12), (18.856603619, 12), (18.856603619, 20), (16.9, 20), (16.9, 12), (18.4, 12), (18.4, 6), align=None)
        with Locations((5.9, -15.5)):
            Rectangle(SCHIZZO14_W_2, SCHIZZO14_H_2)
    extrude(amount=-TAGLIO_ESTRUSIONE5_DEPTH, mode=Mode.SUBTRACT)

    # Smusso3
    smusso3_edges = [part.edges().sort_by_distance(p)[0] for p in [
        (-12.1, 0, 12.5),
    ]]
    chamfer(smusso3_edges, length=SMUSSO3_SIZE)


solid = part.part
